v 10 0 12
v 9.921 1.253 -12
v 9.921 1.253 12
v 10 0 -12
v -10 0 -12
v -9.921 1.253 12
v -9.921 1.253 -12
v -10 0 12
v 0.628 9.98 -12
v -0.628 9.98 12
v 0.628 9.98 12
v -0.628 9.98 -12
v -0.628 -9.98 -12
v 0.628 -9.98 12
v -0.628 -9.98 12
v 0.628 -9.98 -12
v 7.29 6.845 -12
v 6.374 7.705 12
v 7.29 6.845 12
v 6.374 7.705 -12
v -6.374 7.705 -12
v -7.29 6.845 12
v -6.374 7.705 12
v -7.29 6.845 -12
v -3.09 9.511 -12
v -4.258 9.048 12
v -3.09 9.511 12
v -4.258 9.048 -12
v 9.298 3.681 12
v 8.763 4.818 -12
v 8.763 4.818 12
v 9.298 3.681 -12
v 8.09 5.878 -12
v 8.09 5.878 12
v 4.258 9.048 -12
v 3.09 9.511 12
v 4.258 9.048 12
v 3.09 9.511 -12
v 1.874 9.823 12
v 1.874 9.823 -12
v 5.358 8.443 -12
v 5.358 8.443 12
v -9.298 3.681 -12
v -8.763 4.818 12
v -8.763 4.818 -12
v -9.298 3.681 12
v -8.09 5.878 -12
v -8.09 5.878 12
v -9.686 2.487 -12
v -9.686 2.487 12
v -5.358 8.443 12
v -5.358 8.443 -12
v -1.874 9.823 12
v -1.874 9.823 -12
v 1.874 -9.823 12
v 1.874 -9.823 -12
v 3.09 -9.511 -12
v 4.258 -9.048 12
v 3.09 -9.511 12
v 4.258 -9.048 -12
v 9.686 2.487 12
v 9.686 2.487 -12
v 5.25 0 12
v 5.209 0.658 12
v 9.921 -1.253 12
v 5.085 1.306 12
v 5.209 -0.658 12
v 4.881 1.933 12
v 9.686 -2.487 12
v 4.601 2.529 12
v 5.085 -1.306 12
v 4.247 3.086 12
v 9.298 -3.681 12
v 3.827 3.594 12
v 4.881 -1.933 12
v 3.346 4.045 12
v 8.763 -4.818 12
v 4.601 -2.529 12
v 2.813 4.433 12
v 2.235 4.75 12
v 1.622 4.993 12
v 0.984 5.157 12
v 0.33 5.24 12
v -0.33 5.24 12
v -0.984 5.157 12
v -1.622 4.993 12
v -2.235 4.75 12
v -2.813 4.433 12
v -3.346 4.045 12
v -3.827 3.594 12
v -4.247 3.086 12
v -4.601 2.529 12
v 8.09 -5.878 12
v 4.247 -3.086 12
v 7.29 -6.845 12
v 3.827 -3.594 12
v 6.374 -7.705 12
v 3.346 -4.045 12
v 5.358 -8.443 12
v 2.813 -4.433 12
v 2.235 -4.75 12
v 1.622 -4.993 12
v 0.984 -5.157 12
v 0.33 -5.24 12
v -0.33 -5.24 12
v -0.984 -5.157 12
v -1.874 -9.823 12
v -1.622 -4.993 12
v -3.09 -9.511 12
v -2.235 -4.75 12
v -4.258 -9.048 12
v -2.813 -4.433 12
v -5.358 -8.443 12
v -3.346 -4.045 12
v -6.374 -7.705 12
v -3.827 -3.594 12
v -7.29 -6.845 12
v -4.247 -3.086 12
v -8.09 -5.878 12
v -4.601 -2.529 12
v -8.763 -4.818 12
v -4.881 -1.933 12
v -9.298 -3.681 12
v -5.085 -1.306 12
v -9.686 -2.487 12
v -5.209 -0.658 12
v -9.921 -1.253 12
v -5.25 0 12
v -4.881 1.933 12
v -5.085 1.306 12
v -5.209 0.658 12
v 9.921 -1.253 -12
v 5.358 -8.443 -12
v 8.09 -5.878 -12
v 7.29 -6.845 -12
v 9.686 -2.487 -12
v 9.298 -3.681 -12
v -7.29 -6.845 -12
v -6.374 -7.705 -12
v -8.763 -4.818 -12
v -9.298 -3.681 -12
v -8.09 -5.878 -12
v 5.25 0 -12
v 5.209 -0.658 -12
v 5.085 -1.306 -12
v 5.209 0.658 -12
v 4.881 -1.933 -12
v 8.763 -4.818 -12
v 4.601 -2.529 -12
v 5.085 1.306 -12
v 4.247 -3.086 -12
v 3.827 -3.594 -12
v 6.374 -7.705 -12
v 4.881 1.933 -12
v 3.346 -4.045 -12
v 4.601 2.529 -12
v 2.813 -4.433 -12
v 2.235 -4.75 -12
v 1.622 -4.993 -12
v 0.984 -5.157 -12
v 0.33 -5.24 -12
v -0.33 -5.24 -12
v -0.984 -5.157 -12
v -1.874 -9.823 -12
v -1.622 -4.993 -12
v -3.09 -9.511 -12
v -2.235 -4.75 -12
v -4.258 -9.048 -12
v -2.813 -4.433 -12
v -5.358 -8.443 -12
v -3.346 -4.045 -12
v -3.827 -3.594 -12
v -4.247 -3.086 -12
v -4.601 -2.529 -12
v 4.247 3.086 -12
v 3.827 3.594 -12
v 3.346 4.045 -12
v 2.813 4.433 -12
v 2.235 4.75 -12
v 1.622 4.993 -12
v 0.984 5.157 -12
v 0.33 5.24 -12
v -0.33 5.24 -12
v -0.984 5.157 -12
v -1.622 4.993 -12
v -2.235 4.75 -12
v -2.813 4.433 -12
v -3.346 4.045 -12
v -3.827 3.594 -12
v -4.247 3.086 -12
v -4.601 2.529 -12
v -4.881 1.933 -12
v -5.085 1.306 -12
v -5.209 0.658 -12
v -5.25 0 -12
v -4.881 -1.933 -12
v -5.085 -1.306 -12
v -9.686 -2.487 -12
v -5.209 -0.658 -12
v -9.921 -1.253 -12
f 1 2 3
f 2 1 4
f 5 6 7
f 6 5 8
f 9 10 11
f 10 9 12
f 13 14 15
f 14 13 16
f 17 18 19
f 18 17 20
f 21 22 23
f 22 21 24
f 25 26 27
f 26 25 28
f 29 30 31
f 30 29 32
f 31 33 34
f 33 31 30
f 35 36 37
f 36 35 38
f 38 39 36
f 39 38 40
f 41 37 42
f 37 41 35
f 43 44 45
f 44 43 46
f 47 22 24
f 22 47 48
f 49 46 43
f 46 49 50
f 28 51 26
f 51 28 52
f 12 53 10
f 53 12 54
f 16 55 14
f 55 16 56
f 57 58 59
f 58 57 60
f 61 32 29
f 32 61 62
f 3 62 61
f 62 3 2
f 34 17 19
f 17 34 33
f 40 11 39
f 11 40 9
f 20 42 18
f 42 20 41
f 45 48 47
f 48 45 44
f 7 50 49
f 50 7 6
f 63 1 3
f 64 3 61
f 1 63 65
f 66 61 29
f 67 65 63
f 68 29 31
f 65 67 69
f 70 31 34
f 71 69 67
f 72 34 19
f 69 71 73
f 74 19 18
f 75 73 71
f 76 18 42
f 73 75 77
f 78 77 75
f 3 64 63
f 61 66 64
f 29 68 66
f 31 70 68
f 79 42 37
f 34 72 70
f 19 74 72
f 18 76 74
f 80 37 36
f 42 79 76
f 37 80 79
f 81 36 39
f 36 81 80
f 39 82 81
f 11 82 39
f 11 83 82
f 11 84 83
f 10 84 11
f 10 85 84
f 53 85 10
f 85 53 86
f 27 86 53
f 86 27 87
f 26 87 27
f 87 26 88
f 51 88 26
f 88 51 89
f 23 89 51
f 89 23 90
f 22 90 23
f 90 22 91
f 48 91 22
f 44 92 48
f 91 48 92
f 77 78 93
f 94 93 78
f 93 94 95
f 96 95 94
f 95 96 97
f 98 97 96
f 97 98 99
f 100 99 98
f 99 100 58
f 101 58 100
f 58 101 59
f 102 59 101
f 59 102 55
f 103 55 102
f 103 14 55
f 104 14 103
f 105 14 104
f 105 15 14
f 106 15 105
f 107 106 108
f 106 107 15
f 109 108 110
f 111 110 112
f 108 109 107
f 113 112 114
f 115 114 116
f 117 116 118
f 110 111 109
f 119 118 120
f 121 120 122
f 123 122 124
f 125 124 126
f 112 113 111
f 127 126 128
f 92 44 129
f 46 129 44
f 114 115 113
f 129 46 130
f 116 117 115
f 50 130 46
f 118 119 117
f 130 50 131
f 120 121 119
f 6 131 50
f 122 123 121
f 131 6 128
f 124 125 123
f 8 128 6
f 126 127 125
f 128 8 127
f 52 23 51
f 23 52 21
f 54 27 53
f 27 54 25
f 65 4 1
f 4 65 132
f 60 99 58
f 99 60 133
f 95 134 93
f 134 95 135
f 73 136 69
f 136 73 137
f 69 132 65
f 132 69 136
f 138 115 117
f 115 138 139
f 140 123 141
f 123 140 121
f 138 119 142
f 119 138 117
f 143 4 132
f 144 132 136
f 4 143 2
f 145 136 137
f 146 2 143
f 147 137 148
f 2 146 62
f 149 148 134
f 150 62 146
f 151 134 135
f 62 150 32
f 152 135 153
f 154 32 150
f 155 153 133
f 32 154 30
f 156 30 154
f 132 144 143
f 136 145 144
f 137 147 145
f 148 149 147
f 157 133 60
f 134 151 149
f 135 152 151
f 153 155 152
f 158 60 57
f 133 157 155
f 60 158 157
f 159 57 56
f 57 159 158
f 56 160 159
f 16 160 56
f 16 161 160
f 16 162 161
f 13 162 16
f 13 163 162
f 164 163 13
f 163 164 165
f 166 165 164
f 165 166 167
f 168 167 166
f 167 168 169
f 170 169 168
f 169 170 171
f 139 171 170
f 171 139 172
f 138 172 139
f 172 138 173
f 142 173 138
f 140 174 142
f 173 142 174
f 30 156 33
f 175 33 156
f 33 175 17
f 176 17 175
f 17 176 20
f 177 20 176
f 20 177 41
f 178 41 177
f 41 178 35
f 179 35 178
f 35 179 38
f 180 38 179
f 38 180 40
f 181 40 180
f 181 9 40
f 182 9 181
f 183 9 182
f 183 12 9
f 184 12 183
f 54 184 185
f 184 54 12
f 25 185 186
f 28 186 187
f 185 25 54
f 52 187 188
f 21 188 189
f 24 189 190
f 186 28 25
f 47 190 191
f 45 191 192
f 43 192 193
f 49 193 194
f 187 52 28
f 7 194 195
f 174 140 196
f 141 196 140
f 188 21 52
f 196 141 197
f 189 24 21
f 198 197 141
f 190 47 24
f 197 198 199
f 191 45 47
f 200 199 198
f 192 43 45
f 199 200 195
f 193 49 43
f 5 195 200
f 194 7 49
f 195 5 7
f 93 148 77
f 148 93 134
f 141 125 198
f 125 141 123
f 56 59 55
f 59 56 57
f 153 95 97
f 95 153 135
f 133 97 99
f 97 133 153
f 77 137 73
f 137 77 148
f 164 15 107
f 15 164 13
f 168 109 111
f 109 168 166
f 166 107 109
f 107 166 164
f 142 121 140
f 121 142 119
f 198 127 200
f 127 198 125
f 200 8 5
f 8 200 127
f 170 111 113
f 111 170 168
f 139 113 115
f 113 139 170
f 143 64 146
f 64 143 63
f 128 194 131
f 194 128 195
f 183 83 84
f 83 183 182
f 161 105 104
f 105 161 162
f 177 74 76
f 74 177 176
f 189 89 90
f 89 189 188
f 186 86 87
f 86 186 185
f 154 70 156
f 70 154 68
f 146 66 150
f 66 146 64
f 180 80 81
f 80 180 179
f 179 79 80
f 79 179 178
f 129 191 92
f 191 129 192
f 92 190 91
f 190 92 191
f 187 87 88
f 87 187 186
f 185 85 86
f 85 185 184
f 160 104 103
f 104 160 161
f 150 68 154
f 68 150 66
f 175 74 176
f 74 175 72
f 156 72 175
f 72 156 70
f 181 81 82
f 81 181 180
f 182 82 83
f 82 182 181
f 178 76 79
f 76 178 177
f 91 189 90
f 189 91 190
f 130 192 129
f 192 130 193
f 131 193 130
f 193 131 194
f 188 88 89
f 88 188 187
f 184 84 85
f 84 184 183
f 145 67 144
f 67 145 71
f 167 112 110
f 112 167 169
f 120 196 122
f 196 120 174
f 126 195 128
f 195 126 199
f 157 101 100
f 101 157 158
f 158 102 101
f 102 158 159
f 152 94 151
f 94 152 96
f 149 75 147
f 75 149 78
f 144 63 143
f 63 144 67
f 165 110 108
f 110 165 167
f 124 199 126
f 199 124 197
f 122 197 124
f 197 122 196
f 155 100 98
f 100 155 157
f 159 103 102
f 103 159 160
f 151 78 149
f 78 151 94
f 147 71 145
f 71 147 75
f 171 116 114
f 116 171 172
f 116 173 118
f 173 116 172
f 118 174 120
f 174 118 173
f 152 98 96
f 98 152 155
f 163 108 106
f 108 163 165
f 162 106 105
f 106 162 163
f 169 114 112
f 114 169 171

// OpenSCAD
$fn = 50;


difference() {
	union() {
		translate(v = [0, 0, -12.0000000000]) {
			cylinder(h = 24, r = 10.0000000000);
		}
	}
	union() {
		translate(v = [0, 0, -100.0000000000]) {
			cylinder(h = 200, r = 5.2500000000);
		}
	}
}
